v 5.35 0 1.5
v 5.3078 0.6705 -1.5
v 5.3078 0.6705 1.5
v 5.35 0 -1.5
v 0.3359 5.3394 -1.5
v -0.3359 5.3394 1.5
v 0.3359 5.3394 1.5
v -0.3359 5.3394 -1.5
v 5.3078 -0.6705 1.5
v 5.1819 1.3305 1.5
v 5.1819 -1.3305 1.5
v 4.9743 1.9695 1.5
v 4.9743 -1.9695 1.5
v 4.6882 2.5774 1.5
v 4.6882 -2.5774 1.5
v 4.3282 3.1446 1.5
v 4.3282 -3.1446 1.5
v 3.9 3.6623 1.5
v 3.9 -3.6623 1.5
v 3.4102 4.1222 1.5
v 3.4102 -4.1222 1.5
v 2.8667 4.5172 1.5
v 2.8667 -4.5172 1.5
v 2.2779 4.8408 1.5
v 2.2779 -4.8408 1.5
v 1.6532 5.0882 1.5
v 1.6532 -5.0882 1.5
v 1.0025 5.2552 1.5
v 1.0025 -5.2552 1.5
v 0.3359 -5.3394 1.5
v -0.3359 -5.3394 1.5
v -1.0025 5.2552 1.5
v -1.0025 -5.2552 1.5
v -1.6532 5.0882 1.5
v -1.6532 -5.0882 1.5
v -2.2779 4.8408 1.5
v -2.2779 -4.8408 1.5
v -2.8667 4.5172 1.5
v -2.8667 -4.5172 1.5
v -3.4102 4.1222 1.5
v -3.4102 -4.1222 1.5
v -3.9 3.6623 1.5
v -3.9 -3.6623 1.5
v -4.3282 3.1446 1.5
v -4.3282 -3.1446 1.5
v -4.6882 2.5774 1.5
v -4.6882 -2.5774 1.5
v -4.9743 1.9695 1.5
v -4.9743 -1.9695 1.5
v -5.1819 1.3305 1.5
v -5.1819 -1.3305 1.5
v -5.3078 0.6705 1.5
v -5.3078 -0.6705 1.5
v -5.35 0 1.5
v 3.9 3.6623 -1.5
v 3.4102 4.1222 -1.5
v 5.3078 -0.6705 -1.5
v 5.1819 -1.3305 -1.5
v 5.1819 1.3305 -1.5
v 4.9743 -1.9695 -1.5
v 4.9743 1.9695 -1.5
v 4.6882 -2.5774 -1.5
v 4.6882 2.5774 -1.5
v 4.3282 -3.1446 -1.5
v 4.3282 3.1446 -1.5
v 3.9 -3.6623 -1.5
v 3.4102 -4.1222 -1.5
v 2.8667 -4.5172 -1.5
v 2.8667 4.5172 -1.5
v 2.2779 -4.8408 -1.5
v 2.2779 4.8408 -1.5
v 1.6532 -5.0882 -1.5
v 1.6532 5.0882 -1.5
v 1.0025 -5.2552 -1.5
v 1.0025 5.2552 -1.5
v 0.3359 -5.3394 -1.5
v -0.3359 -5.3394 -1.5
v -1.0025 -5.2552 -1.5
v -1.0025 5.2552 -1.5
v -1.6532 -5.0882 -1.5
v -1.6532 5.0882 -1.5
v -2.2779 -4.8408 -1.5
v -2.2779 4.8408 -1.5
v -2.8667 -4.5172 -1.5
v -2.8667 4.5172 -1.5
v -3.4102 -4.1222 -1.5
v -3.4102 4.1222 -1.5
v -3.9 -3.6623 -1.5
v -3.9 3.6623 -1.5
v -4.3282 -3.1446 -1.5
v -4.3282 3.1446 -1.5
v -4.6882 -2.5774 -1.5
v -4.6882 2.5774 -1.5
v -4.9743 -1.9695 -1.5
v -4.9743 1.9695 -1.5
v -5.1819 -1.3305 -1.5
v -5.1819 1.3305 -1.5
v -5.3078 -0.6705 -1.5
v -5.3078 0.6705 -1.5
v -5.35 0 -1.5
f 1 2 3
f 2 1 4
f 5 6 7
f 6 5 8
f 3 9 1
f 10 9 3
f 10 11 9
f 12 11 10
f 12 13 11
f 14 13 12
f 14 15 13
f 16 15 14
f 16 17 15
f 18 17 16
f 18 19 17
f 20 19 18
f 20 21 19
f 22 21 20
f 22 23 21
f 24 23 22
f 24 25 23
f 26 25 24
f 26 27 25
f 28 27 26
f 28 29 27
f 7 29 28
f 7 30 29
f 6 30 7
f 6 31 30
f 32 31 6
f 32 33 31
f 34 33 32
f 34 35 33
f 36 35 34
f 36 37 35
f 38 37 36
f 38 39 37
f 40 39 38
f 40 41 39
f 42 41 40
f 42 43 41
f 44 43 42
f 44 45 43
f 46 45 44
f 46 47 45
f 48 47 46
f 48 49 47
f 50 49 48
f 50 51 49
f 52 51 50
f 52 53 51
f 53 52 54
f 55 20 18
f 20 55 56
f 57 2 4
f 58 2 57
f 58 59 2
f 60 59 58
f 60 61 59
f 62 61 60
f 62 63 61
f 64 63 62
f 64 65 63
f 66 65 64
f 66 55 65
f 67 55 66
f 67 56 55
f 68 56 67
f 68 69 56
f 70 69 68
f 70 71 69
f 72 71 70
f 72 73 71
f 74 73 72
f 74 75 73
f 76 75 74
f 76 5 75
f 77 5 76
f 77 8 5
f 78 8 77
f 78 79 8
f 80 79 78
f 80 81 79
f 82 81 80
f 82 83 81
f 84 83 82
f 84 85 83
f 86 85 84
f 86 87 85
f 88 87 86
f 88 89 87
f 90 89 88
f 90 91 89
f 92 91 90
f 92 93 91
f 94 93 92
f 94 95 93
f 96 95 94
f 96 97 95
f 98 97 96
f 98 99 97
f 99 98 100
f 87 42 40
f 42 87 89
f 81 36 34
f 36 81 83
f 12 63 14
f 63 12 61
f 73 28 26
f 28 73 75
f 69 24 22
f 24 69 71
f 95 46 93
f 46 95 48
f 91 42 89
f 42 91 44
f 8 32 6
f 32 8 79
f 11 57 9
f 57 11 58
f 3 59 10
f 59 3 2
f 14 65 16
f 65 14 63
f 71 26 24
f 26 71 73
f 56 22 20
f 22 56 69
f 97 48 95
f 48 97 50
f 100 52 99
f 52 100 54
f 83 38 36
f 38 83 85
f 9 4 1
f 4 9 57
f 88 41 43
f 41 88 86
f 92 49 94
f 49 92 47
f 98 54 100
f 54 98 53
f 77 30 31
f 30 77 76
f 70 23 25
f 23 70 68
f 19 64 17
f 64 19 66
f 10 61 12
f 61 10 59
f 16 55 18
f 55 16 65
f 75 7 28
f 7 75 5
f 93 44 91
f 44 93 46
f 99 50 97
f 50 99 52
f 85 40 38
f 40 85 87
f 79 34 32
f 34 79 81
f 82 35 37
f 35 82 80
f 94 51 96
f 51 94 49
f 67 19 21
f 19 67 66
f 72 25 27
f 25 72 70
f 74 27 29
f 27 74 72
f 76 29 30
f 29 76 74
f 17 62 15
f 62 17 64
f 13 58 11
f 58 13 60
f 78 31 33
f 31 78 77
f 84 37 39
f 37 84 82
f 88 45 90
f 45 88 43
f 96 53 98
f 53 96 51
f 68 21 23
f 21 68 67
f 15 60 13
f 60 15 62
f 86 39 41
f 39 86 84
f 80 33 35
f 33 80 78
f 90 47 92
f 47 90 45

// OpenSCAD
$fn = 50;


difference() {
	union() {
		translate(v = [0, 0, -1.5000000000]) {
			cylinder(h = 3, r = 5.3500000000);
		}
	}
	union() {
		translate(v = [0, 0, -100.0000000000]) {
			cylinder(h = 200, r = 0);
		}
	}
}
